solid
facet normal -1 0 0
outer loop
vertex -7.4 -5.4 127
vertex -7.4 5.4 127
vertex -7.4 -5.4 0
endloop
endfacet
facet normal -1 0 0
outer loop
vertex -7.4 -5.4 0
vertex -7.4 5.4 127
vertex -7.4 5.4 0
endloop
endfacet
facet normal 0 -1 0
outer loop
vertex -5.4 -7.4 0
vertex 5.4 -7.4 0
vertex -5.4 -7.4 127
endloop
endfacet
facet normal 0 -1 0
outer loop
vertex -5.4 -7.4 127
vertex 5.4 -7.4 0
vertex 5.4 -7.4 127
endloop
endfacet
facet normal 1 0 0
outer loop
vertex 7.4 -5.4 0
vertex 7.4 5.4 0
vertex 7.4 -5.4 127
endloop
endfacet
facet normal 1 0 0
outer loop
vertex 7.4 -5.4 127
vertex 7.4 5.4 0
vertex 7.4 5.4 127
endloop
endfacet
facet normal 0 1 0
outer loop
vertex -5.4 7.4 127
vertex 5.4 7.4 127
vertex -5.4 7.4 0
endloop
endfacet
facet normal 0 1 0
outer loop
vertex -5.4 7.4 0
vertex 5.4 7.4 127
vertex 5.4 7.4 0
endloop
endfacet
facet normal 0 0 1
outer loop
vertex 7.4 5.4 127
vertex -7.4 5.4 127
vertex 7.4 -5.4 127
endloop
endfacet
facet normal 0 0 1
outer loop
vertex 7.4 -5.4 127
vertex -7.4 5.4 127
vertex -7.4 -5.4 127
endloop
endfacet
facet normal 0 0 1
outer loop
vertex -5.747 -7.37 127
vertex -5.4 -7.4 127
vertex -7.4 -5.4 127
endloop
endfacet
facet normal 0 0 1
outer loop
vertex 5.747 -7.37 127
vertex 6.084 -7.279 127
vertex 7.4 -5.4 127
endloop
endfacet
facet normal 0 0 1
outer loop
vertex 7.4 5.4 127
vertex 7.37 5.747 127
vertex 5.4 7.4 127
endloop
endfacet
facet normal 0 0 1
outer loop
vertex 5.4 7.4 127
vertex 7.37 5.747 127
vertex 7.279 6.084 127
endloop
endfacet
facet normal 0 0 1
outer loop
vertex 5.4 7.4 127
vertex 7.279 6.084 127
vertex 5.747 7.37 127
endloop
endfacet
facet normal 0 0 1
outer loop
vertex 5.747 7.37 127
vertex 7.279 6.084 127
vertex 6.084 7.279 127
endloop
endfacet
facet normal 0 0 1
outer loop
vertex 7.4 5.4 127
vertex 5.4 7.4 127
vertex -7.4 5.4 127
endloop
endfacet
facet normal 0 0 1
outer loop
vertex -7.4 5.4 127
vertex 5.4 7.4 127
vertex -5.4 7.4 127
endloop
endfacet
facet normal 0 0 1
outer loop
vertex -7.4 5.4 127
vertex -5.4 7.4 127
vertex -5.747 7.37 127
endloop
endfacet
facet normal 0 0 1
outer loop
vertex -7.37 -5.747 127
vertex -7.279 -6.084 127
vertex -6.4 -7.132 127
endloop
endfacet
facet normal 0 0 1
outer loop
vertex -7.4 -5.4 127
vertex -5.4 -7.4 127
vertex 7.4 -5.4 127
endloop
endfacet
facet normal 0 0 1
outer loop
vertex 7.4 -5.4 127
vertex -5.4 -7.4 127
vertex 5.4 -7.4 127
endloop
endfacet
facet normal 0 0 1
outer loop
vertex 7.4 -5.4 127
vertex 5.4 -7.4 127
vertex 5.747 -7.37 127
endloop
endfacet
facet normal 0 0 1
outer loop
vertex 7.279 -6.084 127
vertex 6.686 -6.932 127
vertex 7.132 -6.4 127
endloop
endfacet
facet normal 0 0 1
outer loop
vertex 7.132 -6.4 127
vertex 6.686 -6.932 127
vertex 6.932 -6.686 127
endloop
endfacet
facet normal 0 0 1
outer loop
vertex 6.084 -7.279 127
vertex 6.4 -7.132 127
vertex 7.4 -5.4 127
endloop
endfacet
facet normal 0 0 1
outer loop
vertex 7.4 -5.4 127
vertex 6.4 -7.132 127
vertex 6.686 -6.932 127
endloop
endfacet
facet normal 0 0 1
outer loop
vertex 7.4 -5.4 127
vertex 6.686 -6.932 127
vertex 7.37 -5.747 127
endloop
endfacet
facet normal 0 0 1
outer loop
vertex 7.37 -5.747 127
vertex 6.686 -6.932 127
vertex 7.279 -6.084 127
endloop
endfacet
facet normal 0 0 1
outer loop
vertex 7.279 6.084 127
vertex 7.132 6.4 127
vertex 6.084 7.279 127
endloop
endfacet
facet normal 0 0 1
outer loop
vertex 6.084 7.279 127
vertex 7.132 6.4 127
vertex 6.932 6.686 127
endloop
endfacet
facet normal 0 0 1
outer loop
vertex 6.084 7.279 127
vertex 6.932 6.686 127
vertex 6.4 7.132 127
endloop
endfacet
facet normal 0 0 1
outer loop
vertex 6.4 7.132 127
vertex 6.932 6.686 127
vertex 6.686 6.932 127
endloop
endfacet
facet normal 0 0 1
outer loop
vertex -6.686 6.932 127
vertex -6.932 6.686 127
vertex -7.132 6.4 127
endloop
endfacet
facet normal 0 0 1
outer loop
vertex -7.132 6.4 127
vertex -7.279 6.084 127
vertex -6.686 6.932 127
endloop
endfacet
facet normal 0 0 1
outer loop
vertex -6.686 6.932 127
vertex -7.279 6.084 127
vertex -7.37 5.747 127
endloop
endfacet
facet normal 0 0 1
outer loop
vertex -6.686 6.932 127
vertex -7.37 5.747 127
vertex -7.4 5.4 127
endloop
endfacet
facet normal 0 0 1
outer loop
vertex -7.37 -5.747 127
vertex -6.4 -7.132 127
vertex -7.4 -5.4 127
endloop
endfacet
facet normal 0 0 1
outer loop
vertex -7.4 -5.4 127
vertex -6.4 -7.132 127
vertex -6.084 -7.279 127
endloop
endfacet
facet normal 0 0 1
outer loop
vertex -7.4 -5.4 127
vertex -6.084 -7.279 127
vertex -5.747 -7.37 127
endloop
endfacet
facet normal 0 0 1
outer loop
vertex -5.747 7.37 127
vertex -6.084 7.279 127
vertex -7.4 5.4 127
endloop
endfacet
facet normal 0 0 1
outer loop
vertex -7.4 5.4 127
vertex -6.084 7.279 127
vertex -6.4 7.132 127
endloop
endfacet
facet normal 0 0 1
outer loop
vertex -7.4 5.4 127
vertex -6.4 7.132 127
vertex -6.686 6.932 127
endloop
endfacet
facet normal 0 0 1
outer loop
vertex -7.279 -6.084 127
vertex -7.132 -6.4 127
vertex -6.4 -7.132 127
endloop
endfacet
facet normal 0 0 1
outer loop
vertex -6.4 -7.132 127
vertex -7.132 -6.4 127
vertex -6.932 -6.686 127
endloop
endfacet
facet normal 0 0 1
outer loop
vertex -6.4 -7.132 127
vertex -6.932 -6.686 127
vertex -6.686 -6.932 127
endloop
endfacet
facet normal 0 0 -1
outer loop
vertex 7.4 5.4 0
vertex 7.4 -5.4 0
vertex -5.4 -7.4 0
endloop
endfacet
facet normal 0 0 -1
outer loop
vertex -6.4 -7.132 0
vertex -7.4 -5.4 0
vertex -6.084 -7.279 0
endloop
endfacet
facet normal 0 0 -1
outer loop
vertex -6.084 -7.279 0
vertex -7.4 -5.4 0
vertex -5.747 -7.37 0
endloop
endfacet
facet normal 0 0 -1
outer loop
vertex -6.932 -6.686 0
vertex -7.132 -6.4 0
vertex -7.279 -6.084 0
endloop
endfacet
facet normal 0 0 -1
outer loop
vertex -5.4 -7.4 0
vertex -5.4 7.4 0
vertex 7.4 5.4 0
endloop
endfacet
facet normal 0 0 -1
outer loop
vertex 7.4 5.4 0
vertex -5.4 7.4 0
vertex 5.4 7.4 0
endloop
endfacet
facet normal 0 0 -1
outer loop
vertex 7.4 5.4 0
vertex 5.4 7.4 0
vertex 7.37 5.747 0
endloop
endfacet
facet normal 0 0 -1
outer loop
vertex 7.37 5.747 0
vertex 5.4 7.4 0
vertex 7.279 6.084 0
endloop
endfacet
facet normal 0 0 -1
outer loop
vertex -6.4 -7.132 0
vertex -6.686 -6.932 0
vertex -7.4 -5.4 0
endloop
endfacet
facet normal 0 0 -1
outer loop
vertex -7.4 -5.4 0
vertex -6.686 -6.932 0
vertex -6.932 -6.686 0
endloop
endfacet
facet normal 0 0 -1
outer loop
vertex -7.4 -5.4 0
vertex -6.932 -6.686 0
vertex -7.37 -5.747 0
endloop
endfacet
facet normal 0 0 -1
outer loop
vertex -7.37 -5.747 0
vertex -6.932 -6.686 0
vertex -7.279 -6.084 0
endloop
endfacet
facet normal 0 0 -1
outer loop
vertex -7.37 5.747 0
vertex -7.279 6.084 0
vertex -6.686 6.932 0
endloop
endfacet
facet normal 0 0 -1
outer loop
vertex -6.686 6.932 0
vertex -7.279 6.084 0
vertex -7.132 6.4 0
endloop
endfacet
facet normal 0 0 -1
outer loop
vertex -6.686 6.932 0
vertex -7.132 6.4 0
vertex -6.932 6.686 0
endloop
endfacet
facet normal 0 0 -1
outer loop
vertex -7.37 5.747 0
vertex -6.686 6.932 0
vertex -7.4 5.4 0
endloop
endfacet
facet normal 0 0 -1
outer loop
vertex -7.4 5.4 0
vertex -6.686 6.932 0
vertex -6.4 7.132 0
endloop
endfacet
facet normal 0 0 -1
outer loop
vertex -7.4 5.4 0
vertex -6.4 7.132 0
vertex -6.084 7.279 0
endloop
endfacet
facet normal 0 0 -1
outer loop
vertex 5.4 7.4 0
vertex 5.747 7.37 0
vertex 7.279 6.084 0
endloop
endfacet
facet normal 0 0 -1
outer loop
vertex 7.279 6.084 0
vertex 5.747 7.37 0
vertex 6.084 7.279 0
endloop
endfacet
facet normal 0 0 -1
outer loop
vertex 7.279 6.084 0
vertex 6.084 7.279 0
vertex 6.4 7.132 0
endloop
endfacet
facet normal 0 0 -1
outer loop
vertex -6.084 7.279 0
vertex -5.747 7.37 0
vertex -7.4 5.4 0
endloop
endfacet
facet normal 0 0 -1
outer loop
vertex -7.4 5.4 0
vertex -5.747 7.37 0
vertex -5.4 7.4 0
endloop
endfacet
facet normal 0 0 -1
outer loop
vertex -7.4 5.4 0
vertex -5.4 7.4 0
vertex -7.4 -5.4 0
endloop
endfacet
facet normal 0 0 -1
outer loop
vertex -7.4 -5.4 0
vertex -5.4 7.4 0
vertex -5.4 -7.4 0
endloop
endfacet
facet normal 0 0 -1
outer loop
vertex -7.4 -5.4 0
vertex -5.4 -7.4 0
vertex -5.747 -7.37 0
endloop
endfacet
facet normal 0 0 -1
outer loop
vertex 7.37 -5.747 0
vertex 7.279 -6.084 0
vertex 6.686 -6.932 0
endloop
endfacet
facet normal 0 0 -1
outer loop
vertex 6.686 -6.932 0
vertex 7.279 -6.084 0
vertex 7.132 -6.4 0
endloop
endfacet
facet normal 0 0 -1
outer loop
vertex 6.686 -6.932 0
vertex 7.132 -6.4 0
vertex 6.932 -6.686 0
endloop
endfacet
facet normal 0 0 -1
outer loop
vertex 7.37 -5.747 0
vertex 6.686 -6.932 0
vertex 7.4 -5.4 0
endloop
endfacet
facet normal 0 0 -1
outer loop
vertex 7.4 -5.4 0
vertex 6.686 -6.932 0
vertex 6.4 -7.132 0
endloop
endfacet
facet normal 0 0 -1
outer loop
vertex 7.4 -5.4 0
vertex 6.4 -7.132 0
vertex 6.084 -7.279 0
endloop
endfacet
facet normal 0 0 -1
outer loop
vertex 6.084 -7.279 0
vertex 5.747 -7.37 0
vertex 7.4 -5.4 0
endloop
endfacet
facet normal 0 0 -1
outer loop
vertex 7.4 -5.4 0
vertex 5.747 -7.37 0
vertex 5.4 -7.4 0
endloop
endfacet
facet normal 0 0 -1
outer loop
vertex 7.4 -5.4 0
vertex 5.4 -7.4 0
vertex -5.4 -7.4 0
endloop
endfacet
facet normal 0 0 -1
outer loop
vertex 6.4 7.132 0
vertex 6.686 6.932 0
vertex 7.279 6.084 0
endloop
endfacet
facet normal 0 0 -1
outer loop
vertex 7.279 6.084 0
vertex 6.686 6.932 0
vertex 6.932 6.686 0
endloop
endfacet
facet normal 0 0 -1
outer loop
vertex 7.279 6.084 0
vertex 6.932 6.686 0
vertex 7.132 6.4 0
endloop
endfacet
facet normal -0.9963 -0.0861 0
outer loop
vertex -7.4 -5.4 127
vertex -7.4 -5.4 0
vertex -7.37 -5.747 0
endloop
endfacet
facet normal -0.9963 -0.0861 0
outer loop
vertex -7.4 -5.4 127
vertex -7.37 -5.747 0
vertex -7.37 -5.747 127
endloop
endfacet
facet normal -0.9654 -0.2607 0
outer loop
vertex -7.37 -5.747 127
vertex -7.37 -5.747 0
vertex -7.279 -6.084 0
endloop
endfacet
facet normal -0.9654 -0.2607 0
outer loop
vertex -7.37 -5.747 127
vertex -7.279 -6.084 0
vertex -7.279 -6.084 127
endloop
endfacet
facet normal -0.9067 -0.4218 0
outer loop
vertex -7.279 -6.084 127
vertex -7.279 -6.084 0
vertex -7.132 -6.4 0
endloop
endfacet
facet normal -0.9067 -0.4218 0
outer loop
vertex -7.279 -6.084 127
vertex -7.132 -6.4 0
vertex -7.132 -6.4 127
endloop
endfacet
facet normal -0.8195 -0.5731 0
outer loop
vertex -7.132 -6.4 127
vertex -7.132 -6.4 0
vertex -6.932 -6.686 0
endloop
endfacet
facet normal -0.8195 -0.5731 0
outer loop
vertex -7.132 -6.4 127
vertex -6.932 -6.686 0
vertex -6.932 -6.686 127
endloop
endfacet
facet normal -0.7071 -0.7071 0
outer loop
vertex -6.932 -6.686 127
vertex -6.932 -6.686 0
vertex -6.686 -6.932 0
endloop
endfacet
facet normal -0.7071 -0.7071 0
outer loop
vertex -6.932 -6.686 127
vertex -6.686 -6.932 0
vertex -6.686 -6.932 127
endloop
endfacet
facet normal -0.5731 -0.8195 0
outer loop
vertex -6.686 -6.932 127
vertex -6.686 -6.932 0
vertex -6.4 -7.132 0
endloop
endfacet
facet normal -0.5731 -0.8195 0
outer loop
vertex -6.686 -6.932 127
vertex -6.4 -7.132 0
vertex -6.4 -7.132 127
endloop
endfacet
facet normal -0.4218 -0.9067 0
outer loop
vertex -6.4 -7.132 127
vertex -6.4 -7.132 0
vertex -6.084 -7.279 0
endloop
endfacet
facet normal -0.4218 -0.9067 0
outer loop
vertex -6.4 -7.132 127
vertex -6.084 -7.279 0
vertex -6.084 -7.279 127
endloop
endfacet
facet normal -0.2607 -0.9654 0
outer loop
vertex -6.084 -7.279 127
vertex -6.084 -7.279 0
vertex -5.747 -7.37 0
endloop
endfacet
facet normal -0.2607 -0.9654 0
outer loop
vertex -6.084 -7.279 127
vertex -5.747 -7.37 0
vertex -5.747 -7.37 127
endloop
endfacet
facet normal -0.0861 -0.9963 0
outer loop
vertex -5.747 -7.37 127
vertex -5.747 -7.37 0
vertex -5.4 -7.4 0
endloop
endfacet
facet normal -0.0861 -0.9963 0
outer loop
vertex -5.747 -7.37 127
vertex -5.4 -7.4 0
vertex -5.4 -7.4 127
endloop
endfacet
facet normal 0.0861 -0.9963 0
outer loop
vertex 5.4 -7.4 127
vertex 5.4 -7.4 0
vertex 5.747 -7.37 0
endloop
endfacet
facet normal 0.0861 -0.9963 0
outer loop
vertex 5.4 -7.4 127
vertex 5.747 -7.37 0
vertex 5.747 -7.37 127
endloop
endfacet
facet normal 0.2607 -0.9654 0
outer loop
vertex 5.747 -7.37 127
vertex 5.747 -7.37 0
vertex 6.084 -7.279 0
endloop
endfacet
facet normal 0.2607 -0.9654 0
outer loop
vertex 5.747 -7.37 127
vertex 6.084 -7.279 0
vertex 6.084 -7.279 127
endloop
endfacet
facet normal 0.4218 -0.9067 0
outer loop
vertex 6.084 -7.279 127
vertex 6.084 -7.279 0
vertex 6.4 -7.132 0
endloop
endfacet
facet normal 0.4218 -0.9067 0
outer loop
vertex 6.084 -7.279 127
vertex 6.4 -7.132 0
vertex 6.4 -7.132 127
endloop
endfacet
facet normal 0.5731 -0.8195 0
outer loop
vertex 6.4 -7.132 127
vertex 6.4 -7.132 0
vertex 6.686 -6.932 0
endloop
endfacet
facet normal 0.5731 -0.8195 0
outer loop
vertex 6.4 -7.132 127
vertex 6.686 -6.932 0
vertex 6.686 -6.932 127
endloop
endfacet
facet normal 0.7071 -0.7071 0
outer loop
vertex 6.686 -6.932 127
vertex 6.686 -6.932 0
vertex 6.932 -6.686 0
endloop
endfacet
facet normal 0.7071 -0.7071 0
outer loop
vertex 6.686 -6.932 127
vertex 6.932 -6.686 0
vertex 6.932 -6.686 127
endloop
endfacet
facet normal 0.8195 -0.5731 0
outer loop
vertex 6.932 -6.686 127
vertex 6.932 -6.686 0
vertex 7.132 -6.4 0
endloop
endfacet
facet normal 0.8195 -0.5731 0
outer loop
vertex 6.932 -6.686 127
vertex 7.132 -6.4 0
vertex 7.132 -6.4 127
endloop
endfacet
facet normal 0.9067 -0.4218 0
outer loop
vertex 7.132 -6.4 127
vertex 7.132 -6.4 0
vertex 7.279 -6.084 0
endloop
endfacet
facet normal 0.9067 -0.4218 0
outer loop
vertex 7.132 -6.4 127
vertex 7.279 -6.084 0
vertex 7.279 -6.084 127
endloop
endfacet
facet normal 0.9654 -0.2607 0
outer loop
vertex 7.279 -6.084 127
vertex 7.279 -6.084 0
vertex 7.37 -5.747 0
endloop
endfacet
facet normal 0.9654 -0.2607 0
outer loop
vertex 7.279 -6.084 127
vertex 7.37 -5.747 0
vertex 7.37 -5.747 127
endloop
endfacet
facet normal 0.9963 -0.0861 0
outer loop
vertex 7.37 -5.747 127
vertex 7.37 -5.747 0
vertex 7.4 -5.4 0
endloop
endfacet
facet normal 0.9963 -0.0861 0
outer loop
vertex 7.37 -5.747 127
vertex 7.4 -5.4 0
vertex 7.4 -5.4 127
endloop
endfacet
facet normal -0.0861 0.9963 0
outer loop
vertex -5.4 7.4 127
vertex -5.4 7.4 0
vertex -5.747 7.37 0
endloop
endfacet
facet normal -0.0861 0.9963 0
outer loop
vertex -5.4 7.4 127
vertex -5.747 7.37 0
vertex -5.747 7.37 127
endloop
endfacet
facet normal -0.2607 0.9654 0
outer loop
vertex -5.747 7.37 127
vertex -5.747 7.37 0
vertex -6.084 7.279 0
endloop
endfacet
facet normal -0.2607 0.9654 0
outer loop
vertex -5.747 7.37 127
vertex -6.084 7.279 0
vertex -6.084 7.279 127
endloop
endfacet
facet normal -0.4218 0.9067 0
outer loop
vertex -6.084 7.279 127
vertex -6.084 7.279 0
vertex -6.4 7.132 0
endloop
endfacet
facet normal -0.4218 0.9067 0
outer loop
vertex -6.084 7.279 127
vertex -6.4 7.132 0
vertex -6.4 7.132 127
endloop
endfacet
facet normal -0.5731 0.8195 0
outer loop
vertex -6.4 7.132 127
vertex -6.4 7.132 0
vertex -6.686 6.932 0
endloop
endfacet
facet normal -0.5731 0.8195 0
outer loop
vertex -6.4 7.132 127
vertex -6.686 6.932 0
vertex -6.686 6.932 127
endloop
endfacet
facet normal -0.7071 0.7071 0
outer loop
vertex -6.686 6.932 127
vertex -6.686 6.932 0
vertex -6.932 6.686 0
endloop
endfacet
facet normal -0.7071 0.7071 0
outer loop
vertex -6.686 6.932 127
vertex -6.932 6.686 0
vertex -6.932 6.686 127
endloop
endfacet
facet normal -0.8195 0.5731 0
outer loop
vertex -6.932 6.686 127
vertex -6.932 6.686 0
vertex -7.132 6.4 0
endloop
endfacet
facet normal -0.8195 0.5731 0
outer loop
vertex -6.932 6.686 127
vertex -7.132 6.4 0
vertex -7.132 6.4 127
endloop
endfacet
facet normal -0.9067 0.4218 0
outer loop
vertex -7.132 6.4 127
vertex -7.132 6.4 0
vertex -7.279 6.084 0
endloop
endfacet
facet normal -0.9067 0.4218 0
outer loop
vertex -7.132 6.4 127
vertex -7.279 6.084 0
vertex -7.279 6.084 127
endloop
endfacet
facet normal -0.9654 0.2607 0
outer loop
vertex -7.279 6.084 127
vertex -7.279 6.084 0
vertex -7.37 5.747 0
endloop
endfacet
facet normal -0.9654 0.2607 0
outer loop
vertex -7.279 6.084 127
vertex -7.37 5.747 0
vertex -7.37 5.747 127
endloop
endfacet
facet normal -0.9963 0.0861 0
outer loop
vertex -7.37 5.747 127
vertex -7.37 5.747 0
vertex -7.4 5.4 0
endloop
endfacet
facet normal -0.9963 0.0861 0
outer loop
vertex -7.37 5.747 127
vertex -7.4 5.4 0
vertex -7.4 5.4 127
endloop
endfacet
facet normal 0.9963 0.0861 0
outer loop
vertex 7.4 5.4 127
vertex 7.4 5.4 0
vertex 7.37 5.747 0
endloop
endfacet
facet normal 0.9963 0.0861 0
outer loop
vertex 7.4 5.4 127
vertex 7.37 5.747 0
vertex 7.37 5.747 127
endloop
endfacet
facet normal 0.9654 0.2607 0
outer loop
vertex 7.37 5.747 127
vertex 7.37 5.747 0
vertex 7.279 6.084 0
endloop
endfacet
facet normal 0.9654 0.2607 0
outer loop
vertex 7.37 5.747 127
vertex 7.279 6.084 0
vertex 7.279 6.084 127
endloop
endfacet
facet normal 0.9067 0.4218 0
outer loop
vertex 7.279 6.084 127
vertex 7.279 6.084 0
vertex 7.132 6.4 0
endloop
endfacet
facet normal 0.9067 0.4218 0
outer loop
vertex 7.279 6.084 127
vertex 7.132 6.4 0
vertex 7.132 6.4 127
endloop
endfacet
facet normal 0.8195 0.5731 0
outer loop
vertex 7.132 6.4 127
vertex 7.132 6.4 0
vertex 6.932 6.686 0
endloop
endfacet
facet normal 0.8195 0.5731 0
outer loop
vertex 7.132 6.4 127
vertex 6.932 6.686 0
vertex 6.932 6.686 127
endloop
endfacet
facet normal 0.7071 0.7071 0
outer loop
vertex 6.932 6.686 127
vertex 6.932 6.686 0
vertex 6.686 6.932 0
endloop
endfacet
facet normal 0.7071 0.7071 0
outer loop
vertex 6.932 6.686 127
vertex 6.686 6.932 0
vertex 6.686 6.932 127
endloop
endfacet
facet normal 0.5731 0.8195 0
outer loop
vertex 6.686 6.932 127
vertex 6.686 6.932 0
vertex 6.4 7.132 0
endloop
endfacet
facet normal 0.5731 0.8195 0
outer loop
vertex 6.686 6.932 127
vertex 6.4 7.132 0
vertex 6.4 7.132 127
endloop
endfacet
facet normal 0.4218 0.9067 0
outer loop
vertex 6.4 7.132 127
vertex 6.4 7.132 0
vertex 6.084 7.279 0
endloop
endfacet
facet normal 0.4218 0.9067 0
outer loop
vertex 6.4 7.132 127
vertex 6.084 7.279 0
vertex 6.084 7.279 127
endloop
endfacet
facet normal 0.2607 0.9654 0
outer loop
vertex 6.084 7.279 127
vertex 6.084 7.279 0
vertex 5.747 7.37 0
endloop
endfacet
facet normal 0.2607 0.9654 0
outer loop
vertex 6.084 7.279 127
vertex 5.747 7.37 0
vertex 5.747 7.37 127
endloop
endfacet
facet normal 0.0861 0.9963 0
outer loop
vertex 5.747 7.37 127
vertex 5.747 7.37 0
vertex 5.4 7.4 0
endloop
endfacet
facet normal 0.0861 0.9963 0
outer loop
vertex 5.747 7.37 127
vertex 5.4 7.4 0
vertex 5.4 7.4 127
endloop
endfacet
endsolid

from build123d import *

# Parameters (mm, degrees)
SKETCH1_W           = 14.8
SKETCH1_H           = 14.8
BOSS_EXTRUDE1_DEPTH = 127
FILLET1_R           = 2


with BuildPart() as part:
    # Sketch1 → Boss-Extrude1 (new body)
    with BuildSketch(Plane.XY):
        Rectangle(SKETCH1_W, SKETCH1_H)
    extrude(amount=BOSS_EXTRUDE1_DEPTH)

    # Fillet1
    fillet1_edges = [part.edges().sort_by_distance(p)[0] for p in [
        (-7.4, 7.4, 63.5),
        (7.4, 7.4, 63.5),
        (7.4, -7.4, 63.5),
        (-7.4, -7.4, 63.5),
    ]]
    fillet(fillet1_edges, radius=FILLET1_R)


solid = part.part
